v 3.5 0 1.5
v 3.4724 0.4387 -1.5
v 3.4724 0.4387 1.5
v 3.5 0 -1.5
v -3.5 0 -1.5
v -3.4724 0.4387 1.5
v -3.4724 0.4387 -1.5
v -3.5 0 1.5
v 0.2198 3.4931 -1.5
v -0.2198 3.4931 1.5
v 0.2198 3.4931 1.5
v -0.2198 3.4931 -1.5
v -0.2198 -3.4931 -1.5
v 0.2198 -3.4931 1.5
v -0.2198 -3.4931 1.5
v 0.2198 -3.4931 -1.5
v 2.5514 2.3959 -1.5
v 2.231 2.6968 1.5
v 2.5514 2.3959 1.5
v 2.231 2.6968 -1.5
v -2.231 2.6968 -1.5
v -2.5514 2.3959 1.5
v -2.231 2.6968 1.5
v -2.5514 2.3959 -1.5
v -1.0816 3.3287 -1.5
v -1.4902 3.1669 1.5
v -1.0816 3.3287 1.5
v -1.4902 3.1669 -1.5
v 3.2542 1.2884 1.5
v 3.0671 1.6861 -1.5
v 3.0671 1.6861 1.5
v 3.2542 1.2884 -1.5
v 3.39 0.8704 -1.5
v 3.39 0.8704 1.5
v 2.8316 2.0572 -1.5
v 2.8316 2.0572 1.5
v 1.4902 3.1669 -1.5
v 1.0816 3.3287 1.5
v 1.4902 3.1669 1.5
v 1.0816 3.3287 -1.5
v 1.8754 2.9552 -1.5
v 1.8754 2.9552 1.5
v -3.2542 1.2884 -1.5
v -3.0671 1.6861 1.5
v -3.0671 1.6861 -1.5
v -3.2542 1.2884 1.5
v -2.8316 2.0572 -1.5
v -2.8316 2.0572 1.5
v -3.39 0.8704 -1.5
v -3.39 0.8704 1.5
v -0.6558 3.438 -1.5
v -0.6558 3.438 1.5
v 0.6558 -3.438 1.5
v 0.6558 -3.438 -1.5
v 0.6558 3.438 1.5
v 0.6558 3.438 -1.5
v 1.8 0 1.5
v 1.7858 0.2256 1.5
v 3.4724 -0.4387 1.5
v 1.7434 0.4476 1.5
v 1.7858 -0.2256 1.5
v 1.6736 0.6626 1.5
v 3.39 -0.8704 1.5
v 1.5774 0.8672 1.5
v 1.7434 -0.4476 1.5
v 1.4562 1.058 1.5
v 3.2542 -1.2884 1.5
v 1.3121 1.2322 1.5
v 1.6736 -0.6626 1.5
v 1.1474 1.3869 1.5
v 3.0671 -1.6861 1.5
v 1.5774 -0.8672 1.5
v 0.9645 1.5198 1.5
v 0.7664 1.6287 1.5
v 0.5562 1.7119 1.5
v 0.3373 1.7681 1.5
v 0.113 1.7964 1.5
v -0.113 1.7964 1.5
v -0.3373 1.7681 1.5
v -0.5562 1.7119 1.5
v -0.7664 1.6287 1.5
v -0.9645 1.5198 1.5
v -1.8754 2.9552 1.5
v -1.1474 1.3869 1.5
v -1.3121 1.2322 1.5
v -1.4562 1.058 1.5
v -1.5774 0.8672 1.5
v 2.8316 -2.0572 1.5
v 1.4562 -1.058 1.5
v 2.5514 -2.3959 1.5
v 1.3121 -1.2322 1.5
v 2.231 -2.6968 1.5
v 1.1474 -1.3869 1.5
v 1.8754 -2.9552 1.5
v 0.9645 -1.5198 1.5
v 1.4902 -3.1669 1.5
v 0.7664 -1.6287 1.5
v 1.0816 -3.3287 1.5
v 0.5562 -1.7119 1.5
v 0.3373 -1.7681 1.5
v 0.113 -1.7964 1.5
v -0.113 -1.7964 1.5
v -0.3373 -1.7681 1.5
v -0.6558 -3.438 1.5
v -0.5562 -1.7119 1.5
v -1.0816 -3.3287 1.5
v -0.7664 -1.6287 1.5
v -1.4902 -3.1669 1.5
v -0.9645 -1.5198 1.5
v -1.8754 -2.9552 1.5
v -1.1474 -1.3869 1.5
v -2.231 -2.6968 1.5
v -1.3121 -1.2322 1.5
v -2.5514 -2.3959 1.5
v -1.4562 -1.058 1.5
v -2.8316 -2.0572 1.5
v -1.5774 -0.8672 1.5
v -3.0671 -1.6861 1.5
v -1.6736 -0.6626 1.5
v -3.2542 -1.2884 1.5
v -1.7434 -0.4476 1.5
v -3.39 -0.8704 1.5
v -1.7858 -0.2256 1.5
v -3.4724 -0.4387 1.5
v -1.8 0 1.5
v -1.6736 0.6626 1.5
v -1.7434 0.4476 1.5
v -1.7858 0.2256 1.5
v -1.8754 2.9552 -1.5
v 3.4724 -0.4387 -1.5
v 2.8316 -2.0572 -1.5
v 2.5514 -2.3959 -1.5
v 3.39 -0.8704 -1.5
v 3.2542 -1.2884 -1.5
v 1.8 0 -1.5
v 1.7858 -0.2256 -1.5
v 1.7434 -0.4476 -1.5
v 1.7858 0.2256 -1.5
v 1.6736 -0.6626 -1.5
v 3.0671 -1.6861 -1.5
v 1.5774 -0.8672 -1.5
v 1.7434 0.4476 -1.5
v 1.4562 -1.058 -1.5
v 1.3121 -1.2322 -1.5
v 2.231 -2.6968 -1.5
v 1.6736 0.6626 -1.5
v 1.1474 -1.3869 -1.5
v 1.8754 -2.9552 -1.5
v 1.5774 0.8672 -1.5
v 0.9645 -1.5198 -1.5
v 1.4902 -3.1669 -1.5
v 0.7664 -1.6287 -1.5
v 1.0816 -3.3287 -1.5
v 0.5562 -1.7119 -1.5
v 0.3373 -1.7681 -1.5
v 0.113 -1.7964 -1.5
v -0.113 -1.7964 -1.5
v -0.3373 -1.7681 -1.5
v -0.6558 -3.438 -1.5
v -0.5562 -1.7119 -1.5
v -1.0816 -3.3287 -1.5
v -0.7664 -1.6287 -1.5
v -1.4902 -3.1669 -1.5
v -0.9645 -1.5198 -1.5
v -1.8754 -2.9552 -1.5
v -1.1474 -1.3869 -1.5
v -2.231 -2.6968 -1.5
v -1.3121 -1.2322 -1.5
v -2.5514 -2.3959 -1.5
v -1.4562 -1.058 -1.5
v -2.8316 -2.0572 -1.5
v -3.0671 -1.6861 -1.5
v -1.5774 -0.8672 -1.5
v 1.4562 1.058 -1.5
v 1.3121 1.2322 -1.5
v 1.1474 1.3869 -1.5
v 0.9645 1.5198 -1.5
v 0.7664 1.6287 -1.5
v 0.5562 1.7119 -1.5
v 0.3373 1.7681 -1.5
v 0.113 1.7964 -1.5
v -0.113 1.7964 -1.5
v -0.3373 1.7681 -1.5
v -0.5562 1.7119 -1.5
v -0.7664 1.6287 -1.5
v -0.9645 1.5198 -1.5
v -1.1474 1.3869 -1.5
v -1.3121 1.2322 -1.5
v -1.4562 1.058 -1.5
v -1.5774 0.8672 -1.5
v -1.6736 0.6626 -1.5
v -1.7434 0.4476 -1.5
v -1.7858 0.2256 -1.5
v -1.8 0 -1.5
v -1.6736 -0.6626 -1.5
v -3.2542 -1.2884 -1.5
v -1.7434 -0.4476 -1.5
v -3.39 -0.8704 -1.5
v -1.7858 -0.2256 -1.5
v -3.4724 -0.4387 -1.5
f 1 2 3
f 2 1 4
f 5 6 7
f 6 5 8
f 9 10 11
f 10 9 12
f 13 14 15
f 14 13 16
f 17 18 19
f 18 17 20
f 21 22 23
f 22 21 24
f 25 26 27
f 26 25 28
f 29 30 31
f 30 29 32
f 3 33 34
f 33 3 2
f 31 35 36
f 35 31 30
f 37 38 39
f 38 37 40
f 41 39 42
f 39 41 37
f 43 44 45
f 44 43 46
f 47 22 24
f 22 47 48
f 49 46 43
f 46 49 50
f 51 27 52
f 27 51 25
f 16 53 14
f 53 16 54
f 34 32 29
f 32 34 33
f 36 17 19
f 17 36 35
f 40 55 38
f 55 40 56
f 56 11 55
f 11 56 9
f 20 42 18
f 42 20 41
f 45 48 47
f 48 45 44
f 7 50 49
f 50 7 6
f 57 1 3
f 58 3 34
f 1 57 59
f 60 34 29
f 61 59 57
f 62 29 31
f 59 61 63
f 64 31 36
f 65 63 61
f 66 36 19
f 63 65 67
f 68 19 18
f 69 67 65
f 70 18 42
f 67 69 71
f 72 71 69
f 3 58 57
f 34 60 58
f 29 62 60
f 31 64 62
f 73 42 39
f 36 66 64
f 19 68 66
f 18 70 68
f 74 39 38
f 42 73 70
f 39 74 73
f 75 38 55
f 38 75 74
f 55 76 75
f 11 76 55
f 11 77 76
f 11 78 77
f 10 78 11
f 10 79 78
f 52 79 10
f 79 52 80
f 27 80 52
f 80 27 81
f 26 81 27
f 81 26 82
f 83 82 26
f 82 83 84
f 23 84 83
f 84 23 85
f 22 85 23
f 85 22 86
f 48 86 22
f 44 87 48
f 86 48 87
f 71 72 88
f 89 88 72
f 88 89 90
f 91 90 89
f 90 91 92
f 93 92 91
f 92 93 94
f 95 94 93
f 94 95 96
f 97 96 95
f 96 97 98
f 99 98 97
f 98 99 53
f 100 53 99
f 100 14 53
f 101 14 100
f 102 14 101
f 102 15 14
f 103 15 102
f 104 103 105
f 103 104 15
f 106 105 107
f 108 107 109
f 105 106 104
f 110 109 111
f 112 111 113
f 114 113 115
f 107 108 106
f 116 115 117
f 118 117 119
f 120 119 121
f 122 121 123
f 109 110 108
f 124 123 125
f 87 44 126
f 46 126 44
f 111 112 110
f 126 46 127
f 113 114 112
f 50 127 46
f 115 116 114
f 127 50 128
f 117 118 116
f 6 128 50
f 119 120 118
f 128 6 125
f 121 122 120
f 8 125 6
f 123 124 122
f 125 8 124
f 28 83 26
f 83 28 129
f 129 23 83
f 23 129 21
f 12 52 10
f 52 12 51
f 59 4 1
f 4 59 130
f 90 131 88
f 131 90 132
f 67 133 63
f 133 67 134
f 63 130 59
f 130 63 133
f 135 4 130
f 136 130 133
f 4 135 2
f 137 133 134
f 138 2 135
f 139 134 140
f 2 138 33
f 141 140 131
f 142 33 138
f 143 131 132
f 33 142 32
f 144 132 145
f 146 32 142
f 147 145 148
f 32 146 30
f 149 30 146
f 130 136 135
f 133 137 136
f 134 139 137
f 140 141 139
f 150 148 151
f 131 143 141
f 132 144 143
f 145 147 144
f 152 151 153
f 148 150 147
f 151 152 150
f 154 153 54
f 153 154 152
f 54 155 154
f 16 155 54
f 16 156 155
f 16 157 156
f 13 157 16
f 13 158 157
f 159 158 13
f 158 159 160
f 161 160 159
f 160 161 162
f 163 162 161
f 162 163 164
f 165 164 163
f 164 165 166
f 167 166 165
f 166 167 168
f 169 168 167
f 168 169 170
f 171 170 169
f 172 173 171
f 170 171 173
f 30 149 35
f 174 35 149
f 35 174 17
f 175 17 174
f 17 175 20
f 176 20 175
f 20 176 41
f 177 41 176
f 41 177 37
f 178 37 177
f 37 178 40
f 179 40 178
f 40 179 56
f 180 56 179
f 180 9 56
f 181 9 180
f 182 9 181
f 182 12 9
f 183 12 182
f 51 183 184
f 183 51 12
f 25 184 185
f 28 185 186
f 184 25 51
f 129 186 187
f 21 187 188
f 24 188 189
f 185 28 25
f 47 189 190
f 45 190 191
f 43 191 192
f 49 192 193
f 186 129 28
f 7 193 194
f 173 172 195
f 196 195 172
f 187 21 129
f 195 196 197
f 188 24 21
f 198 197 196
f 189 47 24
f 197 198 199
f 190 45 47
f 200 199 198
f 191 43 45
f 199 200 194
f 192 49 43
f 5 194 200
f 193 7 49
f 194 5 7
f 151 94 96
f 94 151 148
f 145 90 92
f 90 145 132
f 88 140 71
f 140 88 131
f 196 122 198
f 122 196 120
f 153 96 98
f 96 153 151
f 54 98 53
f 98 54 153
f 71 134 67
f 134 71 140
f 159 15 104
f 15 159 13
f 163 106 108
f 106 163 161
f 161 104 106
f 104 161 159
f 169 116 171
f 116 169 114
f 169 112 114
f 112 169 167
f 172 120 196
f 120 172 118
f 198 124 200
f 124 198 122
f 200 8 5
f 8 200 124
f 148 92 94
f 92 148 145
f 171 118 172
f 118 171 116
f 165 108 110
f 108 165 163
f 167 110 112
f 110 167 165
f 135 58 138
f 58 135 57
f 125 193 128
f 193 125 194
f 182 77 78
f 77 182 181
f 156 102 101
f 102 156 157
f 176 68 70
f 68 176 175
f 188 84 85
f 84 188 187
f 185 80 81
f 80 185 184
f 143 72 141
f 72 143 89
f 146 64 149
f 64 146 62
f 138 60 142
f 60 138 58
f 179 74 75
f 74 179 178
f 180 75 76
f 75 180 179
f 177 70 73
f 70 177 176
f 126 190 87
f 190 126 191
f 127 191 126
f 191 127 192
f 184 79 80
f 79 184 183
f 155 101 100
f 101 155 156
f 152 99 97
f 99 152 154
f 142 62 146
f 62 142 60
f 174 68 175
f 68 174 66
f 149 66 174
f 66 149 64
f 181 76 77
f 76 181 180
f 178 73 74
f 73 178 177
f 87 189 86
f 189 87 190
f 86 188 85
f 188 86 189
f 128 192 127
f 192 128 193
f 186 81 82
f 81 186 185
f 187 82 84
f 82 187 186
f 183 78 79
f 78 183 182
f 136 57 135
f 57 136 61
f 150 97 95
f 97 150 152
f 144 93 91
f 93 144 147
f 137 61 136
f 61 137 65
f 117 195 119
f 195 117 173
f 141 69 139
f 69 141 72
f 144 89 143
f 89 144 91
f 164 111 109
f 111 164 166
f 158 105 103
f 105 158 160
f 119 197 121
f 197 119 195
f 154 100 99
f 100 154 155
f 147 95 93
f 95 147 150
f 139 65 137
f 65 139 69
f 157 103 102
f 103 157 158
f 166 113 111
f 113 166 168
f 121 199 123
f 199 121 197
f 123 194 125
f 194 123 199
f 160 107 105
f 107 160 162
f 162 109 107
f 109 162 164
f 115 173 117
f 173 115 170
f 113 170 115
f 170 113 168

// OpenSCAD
$fn = 50;


difference() {
	union() {
		translate(v = [0, 0, -1.5000000000]) {
			cylinder(h = 3, r = 3.5000000000);
		}
	}
	union() {
		translate(v = [0, 0, -100.0000000000]) {
			cylinder(h = 200, r = 1.8000000000);
		}
	}
}
